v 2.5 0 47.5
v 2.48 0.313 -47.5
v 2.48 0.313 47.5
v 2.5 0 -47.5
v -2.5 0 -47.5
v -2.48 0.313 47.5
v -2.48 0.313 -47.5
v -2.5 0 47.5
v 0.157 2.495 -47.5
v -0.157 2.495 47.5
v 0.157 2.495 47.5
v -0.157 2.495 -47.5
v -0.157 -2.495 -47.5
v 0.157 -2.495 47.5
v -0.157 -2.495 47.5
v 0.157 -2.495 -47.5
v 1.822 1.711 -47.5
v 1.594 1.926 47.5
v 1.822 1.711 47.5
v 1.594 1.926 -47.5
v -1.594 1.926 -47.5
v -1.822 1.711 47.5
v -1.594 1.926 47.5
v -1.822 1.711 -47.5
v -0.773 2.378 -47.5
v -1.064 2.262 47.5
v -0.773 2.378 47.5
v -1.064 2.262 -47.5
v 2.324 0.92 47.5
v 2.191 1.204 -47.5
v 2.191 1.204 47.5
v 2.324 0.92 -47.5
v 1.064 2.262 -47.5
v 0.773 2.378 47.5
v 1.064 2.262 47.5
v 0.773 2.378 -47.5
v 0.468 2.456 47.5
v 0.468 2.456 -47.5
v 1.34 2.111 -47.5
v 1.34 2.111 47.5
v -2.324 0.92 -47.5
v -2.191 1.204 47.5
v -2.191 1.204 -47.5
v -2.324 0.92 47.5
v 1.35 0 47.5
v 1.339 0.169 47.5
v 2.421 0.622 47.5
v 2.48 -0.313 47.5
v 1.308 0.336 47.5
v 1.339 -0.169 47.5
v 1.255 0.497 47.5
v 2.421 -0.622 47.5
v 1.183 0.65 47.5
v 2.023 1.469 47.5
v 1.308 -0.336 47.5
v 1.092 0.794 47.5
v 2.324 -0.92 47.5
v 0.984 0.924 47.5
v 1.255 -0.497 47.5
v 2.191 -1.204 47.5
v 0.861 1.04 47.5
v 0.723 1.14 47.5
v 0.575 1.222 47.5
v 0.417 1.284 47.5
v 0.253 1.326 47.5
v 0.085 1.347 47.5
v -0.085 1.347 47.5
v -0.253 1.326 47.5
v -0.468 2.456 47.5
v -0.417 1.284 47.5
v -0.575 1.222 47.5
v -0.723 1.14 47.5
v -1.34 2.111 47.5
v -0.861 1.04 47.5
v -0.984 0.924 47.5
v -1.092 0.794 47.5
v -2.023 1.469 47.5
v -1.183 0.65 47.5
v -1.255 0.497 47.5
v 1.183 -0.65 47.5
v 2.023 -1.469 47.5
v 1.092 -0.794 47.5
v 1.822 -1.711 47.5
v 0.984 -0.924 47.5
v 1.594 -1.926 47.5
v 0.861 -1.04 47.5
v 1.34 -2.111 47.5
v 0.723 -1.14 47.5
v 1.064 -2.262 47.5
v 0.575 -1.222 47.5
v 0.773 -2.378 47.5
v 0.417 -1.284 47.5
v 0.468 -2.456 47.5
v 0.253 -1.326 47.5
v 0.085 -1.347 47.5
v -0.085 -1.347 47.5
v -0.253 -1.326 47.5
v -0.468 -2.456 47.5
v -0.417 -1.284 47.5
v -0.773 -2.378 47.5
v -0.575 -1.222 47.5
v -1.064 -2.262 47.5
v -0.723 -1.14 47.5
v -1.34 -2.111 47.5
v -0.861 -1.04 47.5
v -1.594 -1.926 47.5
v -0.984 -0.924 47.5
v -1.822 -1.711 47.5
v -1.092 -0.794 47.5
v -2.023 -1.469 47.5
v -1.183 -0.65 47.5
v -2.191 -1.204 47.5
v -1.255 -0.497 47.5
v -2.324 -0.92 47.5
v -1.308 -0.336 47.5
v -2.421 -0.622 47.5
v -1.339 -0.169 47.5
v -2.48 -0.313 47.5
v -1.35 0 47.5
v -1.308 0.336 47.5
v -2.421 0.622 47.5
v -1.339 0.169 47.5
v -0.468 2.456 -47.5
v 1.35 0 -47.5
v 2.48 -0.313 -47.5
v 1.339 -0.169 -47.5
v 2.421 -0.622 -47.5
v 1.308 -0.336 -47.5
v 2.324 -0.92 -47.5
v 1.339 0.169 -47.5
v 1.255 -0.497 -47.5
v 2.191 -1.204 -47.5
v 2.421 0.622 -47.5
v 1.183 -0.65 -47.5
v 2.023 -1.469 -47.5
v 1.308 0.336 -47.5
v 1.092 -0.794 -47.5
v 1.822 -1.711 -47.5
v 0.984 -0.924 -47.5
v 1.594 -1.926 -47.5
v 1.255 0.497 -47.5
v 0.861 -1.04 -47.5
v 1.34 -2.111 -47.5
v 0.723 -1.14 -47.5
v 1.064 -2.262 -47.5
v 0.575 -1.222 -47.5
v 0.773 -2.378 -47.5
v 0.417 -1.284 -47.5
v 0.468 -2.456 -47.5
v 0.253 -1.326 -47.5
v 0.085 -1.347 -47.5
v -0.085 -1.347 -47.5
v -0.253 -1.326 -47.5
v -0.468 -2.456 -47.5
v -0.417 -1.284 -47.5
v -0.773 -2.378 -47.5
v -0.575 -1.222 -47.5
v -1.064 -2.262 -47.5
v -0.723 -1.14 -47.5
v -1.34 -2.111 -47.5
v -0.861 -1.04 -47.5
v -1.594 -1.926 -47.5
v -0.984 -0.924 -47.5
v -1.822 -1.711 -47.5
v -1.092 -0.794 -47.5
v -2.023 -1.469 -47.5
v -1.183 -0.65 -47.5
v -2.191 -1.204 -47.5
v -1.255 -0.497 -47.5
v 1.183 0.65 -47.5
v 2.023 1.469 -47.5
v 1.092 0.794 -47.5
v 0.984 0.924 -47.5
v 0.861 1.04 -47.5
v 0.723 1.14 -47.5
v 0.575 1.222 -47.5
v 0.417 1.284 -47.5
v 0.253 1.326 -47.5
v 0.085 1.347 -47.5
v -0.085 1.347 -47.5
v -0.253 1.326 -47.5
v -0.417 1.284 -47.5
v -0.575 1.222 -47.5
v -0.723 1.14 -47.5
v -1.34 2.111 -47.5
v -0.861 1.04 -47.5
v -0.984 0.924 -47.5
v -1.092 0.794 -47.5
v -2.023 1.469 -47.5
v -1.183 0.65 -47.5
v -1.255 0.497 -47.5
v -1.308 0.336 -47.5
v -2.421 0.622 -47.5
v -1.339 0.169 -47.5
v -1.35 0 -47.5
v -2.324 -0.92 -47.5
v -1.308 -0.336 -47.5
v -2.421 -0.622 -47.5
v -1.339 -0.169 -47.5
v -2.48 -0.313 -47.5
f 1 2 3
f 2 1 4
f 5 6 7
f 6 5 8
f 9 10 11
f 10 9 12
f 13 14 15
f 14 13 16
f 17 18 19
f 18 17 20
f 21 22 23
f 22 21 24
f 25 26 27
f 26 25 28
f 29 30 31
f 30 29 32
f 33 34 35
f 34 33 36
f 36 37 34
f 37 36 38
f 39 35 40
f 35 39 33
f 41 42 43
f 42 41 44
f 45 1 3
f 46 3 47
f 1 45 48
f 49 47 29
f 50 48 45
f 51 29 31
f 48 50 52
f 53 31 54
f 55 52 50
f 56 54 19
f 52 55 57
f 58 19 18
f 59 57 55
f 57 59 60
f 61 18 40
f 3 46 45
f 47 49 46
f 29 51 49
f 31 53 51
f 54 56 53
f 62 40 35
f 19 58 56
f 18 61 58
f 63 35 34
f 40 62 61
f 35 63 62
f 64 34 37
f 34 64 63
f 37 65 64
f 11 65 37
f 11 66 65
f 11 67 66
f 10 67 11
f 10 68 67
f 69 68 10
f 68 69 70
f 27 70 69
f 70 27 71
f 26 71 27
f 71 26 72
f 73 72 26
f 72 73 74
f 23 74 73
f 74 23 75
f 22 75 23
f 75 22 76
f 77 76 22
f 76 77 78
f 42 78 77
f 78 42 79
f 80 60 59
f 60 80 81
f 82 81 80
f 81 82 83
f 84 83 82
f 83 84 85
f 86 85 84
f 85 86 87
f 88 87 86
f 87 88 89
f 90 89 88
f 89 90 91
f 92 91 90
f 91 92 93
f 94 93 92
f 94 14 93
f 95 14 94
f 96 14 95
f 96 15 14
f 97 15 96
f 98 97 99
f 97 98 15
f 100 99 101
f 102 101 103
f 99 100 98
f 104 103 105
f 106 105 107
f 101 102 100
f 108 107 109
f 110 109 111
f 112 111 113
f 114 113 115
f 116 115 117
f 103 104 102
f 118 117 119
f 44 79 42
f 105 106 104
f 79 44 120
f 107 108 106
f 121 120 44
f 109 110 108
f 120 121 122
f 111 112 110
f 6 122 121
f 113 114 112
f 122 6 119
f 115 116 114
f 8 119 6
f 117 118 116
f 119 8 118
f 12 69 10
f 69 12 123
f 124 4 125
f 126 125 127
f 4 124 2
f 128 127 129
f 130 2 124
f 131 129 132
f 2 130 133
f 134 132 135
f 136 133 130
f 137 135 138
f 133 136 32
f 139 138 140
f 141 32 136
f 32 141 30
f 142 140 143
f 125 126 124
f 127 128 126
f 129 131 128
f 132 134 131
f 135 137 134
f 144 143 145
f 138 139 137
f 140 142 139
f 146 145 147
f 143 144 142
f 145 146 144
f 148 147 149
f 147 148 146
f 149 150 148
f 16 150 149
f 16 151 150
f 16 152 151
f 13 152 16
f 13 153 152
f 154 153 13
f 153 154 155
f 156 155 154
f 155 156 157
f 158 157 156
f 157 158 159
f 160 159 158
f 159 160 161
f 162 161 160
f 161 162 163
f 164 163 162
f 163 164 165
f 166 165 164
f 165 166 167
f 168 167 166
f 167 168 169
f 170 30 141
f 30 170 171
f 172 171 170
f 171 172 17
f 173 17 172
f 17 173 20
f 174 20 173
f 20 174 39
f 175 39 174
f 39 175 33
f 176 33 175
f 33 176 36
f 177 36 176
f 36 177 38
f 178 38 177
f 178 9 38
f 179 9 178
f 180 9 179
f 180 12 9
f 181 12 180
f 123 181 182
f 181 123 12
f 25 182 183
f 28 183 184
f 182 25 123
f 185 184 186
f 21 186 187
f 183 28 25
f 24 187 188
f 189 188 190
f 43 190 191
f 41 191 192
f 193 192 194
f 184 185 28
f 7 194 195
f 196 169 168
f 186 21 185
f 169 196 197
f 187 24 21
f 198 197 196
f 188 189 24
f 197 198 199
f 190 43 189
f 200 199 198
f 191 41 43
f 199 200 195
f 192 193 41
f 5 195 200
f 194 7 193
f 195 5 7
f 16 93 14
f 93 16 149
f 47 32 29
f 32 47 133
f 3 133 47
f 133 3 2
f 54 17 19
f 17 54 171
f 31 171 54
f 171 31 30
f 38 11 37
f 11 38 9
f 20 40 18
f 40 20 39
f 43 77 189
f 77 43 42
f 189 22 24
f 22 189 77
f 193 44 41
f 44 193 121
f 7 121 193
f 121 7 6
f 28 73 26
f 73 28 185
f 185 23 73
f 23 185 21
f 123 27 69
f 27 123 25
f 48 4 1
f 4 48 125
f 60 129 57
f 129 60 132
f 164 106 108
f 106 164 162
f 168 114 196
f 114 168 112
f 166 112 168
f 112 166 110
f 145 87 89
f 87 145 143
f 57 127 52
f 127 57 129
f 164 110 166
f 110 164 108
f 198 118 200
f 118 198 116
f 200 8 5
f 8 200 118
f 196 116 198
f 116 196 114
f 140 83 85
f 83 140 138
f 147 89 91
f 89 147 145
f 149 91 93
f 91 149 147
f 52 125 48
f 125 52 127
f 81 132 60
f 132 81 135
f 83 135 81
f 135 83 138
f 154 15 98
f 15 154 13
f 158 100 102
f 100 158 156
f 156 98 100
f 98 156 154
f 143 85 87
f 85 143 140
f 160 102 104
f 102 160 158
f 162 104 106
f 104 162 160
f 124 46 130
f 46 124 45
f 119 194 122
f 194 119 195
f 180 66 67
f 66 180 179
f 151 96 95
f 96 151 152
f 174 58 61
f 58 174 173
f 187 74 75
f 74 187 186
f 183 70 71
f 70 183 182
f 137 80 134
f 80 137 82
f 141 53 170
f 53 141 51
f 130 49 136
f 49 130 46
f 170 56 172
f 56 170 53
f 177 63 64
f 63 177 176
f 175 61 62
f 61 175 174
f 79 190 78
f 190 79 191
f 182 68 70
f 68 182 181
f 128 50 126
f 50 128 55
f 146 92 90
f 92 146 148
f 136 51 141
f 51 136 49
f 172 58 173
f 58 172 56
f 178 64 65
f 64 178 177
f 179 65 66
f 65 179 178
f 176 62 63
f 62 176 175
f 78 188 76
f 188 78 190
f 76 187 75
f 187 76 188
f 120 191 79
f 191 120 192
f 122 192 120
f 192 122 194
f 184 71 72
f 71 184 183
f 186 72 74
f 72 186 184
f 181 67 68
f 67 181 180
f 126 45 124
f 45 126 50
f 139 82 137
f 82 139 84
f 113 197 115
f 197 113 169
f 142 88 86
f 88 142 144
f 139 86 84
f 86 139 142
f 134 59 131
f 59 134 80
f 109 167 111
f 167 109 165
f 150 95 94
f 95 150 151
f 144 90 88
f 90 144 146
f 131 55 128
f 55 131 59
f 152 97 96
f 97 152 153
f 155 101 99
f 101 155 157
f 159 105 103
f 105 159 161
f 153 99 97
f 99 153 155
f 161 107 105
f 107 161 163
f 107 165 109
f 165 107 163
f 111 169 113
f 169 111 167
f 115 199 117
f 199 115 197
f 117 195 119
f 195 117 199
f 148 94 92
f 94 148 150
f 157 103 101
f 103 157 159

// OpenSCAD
$fn = 50;


difference() {
	union() {
		translate(v = [0, 0, -47.5000000000]) {
			cylinder(h = 95, r = 2.5000000000);
		}
	}
	union() {
		translate(v = [0, 0, -100.0000000000]) {
			cylinder(h = 200, r = 1.3500000000);
		}
	}
}
